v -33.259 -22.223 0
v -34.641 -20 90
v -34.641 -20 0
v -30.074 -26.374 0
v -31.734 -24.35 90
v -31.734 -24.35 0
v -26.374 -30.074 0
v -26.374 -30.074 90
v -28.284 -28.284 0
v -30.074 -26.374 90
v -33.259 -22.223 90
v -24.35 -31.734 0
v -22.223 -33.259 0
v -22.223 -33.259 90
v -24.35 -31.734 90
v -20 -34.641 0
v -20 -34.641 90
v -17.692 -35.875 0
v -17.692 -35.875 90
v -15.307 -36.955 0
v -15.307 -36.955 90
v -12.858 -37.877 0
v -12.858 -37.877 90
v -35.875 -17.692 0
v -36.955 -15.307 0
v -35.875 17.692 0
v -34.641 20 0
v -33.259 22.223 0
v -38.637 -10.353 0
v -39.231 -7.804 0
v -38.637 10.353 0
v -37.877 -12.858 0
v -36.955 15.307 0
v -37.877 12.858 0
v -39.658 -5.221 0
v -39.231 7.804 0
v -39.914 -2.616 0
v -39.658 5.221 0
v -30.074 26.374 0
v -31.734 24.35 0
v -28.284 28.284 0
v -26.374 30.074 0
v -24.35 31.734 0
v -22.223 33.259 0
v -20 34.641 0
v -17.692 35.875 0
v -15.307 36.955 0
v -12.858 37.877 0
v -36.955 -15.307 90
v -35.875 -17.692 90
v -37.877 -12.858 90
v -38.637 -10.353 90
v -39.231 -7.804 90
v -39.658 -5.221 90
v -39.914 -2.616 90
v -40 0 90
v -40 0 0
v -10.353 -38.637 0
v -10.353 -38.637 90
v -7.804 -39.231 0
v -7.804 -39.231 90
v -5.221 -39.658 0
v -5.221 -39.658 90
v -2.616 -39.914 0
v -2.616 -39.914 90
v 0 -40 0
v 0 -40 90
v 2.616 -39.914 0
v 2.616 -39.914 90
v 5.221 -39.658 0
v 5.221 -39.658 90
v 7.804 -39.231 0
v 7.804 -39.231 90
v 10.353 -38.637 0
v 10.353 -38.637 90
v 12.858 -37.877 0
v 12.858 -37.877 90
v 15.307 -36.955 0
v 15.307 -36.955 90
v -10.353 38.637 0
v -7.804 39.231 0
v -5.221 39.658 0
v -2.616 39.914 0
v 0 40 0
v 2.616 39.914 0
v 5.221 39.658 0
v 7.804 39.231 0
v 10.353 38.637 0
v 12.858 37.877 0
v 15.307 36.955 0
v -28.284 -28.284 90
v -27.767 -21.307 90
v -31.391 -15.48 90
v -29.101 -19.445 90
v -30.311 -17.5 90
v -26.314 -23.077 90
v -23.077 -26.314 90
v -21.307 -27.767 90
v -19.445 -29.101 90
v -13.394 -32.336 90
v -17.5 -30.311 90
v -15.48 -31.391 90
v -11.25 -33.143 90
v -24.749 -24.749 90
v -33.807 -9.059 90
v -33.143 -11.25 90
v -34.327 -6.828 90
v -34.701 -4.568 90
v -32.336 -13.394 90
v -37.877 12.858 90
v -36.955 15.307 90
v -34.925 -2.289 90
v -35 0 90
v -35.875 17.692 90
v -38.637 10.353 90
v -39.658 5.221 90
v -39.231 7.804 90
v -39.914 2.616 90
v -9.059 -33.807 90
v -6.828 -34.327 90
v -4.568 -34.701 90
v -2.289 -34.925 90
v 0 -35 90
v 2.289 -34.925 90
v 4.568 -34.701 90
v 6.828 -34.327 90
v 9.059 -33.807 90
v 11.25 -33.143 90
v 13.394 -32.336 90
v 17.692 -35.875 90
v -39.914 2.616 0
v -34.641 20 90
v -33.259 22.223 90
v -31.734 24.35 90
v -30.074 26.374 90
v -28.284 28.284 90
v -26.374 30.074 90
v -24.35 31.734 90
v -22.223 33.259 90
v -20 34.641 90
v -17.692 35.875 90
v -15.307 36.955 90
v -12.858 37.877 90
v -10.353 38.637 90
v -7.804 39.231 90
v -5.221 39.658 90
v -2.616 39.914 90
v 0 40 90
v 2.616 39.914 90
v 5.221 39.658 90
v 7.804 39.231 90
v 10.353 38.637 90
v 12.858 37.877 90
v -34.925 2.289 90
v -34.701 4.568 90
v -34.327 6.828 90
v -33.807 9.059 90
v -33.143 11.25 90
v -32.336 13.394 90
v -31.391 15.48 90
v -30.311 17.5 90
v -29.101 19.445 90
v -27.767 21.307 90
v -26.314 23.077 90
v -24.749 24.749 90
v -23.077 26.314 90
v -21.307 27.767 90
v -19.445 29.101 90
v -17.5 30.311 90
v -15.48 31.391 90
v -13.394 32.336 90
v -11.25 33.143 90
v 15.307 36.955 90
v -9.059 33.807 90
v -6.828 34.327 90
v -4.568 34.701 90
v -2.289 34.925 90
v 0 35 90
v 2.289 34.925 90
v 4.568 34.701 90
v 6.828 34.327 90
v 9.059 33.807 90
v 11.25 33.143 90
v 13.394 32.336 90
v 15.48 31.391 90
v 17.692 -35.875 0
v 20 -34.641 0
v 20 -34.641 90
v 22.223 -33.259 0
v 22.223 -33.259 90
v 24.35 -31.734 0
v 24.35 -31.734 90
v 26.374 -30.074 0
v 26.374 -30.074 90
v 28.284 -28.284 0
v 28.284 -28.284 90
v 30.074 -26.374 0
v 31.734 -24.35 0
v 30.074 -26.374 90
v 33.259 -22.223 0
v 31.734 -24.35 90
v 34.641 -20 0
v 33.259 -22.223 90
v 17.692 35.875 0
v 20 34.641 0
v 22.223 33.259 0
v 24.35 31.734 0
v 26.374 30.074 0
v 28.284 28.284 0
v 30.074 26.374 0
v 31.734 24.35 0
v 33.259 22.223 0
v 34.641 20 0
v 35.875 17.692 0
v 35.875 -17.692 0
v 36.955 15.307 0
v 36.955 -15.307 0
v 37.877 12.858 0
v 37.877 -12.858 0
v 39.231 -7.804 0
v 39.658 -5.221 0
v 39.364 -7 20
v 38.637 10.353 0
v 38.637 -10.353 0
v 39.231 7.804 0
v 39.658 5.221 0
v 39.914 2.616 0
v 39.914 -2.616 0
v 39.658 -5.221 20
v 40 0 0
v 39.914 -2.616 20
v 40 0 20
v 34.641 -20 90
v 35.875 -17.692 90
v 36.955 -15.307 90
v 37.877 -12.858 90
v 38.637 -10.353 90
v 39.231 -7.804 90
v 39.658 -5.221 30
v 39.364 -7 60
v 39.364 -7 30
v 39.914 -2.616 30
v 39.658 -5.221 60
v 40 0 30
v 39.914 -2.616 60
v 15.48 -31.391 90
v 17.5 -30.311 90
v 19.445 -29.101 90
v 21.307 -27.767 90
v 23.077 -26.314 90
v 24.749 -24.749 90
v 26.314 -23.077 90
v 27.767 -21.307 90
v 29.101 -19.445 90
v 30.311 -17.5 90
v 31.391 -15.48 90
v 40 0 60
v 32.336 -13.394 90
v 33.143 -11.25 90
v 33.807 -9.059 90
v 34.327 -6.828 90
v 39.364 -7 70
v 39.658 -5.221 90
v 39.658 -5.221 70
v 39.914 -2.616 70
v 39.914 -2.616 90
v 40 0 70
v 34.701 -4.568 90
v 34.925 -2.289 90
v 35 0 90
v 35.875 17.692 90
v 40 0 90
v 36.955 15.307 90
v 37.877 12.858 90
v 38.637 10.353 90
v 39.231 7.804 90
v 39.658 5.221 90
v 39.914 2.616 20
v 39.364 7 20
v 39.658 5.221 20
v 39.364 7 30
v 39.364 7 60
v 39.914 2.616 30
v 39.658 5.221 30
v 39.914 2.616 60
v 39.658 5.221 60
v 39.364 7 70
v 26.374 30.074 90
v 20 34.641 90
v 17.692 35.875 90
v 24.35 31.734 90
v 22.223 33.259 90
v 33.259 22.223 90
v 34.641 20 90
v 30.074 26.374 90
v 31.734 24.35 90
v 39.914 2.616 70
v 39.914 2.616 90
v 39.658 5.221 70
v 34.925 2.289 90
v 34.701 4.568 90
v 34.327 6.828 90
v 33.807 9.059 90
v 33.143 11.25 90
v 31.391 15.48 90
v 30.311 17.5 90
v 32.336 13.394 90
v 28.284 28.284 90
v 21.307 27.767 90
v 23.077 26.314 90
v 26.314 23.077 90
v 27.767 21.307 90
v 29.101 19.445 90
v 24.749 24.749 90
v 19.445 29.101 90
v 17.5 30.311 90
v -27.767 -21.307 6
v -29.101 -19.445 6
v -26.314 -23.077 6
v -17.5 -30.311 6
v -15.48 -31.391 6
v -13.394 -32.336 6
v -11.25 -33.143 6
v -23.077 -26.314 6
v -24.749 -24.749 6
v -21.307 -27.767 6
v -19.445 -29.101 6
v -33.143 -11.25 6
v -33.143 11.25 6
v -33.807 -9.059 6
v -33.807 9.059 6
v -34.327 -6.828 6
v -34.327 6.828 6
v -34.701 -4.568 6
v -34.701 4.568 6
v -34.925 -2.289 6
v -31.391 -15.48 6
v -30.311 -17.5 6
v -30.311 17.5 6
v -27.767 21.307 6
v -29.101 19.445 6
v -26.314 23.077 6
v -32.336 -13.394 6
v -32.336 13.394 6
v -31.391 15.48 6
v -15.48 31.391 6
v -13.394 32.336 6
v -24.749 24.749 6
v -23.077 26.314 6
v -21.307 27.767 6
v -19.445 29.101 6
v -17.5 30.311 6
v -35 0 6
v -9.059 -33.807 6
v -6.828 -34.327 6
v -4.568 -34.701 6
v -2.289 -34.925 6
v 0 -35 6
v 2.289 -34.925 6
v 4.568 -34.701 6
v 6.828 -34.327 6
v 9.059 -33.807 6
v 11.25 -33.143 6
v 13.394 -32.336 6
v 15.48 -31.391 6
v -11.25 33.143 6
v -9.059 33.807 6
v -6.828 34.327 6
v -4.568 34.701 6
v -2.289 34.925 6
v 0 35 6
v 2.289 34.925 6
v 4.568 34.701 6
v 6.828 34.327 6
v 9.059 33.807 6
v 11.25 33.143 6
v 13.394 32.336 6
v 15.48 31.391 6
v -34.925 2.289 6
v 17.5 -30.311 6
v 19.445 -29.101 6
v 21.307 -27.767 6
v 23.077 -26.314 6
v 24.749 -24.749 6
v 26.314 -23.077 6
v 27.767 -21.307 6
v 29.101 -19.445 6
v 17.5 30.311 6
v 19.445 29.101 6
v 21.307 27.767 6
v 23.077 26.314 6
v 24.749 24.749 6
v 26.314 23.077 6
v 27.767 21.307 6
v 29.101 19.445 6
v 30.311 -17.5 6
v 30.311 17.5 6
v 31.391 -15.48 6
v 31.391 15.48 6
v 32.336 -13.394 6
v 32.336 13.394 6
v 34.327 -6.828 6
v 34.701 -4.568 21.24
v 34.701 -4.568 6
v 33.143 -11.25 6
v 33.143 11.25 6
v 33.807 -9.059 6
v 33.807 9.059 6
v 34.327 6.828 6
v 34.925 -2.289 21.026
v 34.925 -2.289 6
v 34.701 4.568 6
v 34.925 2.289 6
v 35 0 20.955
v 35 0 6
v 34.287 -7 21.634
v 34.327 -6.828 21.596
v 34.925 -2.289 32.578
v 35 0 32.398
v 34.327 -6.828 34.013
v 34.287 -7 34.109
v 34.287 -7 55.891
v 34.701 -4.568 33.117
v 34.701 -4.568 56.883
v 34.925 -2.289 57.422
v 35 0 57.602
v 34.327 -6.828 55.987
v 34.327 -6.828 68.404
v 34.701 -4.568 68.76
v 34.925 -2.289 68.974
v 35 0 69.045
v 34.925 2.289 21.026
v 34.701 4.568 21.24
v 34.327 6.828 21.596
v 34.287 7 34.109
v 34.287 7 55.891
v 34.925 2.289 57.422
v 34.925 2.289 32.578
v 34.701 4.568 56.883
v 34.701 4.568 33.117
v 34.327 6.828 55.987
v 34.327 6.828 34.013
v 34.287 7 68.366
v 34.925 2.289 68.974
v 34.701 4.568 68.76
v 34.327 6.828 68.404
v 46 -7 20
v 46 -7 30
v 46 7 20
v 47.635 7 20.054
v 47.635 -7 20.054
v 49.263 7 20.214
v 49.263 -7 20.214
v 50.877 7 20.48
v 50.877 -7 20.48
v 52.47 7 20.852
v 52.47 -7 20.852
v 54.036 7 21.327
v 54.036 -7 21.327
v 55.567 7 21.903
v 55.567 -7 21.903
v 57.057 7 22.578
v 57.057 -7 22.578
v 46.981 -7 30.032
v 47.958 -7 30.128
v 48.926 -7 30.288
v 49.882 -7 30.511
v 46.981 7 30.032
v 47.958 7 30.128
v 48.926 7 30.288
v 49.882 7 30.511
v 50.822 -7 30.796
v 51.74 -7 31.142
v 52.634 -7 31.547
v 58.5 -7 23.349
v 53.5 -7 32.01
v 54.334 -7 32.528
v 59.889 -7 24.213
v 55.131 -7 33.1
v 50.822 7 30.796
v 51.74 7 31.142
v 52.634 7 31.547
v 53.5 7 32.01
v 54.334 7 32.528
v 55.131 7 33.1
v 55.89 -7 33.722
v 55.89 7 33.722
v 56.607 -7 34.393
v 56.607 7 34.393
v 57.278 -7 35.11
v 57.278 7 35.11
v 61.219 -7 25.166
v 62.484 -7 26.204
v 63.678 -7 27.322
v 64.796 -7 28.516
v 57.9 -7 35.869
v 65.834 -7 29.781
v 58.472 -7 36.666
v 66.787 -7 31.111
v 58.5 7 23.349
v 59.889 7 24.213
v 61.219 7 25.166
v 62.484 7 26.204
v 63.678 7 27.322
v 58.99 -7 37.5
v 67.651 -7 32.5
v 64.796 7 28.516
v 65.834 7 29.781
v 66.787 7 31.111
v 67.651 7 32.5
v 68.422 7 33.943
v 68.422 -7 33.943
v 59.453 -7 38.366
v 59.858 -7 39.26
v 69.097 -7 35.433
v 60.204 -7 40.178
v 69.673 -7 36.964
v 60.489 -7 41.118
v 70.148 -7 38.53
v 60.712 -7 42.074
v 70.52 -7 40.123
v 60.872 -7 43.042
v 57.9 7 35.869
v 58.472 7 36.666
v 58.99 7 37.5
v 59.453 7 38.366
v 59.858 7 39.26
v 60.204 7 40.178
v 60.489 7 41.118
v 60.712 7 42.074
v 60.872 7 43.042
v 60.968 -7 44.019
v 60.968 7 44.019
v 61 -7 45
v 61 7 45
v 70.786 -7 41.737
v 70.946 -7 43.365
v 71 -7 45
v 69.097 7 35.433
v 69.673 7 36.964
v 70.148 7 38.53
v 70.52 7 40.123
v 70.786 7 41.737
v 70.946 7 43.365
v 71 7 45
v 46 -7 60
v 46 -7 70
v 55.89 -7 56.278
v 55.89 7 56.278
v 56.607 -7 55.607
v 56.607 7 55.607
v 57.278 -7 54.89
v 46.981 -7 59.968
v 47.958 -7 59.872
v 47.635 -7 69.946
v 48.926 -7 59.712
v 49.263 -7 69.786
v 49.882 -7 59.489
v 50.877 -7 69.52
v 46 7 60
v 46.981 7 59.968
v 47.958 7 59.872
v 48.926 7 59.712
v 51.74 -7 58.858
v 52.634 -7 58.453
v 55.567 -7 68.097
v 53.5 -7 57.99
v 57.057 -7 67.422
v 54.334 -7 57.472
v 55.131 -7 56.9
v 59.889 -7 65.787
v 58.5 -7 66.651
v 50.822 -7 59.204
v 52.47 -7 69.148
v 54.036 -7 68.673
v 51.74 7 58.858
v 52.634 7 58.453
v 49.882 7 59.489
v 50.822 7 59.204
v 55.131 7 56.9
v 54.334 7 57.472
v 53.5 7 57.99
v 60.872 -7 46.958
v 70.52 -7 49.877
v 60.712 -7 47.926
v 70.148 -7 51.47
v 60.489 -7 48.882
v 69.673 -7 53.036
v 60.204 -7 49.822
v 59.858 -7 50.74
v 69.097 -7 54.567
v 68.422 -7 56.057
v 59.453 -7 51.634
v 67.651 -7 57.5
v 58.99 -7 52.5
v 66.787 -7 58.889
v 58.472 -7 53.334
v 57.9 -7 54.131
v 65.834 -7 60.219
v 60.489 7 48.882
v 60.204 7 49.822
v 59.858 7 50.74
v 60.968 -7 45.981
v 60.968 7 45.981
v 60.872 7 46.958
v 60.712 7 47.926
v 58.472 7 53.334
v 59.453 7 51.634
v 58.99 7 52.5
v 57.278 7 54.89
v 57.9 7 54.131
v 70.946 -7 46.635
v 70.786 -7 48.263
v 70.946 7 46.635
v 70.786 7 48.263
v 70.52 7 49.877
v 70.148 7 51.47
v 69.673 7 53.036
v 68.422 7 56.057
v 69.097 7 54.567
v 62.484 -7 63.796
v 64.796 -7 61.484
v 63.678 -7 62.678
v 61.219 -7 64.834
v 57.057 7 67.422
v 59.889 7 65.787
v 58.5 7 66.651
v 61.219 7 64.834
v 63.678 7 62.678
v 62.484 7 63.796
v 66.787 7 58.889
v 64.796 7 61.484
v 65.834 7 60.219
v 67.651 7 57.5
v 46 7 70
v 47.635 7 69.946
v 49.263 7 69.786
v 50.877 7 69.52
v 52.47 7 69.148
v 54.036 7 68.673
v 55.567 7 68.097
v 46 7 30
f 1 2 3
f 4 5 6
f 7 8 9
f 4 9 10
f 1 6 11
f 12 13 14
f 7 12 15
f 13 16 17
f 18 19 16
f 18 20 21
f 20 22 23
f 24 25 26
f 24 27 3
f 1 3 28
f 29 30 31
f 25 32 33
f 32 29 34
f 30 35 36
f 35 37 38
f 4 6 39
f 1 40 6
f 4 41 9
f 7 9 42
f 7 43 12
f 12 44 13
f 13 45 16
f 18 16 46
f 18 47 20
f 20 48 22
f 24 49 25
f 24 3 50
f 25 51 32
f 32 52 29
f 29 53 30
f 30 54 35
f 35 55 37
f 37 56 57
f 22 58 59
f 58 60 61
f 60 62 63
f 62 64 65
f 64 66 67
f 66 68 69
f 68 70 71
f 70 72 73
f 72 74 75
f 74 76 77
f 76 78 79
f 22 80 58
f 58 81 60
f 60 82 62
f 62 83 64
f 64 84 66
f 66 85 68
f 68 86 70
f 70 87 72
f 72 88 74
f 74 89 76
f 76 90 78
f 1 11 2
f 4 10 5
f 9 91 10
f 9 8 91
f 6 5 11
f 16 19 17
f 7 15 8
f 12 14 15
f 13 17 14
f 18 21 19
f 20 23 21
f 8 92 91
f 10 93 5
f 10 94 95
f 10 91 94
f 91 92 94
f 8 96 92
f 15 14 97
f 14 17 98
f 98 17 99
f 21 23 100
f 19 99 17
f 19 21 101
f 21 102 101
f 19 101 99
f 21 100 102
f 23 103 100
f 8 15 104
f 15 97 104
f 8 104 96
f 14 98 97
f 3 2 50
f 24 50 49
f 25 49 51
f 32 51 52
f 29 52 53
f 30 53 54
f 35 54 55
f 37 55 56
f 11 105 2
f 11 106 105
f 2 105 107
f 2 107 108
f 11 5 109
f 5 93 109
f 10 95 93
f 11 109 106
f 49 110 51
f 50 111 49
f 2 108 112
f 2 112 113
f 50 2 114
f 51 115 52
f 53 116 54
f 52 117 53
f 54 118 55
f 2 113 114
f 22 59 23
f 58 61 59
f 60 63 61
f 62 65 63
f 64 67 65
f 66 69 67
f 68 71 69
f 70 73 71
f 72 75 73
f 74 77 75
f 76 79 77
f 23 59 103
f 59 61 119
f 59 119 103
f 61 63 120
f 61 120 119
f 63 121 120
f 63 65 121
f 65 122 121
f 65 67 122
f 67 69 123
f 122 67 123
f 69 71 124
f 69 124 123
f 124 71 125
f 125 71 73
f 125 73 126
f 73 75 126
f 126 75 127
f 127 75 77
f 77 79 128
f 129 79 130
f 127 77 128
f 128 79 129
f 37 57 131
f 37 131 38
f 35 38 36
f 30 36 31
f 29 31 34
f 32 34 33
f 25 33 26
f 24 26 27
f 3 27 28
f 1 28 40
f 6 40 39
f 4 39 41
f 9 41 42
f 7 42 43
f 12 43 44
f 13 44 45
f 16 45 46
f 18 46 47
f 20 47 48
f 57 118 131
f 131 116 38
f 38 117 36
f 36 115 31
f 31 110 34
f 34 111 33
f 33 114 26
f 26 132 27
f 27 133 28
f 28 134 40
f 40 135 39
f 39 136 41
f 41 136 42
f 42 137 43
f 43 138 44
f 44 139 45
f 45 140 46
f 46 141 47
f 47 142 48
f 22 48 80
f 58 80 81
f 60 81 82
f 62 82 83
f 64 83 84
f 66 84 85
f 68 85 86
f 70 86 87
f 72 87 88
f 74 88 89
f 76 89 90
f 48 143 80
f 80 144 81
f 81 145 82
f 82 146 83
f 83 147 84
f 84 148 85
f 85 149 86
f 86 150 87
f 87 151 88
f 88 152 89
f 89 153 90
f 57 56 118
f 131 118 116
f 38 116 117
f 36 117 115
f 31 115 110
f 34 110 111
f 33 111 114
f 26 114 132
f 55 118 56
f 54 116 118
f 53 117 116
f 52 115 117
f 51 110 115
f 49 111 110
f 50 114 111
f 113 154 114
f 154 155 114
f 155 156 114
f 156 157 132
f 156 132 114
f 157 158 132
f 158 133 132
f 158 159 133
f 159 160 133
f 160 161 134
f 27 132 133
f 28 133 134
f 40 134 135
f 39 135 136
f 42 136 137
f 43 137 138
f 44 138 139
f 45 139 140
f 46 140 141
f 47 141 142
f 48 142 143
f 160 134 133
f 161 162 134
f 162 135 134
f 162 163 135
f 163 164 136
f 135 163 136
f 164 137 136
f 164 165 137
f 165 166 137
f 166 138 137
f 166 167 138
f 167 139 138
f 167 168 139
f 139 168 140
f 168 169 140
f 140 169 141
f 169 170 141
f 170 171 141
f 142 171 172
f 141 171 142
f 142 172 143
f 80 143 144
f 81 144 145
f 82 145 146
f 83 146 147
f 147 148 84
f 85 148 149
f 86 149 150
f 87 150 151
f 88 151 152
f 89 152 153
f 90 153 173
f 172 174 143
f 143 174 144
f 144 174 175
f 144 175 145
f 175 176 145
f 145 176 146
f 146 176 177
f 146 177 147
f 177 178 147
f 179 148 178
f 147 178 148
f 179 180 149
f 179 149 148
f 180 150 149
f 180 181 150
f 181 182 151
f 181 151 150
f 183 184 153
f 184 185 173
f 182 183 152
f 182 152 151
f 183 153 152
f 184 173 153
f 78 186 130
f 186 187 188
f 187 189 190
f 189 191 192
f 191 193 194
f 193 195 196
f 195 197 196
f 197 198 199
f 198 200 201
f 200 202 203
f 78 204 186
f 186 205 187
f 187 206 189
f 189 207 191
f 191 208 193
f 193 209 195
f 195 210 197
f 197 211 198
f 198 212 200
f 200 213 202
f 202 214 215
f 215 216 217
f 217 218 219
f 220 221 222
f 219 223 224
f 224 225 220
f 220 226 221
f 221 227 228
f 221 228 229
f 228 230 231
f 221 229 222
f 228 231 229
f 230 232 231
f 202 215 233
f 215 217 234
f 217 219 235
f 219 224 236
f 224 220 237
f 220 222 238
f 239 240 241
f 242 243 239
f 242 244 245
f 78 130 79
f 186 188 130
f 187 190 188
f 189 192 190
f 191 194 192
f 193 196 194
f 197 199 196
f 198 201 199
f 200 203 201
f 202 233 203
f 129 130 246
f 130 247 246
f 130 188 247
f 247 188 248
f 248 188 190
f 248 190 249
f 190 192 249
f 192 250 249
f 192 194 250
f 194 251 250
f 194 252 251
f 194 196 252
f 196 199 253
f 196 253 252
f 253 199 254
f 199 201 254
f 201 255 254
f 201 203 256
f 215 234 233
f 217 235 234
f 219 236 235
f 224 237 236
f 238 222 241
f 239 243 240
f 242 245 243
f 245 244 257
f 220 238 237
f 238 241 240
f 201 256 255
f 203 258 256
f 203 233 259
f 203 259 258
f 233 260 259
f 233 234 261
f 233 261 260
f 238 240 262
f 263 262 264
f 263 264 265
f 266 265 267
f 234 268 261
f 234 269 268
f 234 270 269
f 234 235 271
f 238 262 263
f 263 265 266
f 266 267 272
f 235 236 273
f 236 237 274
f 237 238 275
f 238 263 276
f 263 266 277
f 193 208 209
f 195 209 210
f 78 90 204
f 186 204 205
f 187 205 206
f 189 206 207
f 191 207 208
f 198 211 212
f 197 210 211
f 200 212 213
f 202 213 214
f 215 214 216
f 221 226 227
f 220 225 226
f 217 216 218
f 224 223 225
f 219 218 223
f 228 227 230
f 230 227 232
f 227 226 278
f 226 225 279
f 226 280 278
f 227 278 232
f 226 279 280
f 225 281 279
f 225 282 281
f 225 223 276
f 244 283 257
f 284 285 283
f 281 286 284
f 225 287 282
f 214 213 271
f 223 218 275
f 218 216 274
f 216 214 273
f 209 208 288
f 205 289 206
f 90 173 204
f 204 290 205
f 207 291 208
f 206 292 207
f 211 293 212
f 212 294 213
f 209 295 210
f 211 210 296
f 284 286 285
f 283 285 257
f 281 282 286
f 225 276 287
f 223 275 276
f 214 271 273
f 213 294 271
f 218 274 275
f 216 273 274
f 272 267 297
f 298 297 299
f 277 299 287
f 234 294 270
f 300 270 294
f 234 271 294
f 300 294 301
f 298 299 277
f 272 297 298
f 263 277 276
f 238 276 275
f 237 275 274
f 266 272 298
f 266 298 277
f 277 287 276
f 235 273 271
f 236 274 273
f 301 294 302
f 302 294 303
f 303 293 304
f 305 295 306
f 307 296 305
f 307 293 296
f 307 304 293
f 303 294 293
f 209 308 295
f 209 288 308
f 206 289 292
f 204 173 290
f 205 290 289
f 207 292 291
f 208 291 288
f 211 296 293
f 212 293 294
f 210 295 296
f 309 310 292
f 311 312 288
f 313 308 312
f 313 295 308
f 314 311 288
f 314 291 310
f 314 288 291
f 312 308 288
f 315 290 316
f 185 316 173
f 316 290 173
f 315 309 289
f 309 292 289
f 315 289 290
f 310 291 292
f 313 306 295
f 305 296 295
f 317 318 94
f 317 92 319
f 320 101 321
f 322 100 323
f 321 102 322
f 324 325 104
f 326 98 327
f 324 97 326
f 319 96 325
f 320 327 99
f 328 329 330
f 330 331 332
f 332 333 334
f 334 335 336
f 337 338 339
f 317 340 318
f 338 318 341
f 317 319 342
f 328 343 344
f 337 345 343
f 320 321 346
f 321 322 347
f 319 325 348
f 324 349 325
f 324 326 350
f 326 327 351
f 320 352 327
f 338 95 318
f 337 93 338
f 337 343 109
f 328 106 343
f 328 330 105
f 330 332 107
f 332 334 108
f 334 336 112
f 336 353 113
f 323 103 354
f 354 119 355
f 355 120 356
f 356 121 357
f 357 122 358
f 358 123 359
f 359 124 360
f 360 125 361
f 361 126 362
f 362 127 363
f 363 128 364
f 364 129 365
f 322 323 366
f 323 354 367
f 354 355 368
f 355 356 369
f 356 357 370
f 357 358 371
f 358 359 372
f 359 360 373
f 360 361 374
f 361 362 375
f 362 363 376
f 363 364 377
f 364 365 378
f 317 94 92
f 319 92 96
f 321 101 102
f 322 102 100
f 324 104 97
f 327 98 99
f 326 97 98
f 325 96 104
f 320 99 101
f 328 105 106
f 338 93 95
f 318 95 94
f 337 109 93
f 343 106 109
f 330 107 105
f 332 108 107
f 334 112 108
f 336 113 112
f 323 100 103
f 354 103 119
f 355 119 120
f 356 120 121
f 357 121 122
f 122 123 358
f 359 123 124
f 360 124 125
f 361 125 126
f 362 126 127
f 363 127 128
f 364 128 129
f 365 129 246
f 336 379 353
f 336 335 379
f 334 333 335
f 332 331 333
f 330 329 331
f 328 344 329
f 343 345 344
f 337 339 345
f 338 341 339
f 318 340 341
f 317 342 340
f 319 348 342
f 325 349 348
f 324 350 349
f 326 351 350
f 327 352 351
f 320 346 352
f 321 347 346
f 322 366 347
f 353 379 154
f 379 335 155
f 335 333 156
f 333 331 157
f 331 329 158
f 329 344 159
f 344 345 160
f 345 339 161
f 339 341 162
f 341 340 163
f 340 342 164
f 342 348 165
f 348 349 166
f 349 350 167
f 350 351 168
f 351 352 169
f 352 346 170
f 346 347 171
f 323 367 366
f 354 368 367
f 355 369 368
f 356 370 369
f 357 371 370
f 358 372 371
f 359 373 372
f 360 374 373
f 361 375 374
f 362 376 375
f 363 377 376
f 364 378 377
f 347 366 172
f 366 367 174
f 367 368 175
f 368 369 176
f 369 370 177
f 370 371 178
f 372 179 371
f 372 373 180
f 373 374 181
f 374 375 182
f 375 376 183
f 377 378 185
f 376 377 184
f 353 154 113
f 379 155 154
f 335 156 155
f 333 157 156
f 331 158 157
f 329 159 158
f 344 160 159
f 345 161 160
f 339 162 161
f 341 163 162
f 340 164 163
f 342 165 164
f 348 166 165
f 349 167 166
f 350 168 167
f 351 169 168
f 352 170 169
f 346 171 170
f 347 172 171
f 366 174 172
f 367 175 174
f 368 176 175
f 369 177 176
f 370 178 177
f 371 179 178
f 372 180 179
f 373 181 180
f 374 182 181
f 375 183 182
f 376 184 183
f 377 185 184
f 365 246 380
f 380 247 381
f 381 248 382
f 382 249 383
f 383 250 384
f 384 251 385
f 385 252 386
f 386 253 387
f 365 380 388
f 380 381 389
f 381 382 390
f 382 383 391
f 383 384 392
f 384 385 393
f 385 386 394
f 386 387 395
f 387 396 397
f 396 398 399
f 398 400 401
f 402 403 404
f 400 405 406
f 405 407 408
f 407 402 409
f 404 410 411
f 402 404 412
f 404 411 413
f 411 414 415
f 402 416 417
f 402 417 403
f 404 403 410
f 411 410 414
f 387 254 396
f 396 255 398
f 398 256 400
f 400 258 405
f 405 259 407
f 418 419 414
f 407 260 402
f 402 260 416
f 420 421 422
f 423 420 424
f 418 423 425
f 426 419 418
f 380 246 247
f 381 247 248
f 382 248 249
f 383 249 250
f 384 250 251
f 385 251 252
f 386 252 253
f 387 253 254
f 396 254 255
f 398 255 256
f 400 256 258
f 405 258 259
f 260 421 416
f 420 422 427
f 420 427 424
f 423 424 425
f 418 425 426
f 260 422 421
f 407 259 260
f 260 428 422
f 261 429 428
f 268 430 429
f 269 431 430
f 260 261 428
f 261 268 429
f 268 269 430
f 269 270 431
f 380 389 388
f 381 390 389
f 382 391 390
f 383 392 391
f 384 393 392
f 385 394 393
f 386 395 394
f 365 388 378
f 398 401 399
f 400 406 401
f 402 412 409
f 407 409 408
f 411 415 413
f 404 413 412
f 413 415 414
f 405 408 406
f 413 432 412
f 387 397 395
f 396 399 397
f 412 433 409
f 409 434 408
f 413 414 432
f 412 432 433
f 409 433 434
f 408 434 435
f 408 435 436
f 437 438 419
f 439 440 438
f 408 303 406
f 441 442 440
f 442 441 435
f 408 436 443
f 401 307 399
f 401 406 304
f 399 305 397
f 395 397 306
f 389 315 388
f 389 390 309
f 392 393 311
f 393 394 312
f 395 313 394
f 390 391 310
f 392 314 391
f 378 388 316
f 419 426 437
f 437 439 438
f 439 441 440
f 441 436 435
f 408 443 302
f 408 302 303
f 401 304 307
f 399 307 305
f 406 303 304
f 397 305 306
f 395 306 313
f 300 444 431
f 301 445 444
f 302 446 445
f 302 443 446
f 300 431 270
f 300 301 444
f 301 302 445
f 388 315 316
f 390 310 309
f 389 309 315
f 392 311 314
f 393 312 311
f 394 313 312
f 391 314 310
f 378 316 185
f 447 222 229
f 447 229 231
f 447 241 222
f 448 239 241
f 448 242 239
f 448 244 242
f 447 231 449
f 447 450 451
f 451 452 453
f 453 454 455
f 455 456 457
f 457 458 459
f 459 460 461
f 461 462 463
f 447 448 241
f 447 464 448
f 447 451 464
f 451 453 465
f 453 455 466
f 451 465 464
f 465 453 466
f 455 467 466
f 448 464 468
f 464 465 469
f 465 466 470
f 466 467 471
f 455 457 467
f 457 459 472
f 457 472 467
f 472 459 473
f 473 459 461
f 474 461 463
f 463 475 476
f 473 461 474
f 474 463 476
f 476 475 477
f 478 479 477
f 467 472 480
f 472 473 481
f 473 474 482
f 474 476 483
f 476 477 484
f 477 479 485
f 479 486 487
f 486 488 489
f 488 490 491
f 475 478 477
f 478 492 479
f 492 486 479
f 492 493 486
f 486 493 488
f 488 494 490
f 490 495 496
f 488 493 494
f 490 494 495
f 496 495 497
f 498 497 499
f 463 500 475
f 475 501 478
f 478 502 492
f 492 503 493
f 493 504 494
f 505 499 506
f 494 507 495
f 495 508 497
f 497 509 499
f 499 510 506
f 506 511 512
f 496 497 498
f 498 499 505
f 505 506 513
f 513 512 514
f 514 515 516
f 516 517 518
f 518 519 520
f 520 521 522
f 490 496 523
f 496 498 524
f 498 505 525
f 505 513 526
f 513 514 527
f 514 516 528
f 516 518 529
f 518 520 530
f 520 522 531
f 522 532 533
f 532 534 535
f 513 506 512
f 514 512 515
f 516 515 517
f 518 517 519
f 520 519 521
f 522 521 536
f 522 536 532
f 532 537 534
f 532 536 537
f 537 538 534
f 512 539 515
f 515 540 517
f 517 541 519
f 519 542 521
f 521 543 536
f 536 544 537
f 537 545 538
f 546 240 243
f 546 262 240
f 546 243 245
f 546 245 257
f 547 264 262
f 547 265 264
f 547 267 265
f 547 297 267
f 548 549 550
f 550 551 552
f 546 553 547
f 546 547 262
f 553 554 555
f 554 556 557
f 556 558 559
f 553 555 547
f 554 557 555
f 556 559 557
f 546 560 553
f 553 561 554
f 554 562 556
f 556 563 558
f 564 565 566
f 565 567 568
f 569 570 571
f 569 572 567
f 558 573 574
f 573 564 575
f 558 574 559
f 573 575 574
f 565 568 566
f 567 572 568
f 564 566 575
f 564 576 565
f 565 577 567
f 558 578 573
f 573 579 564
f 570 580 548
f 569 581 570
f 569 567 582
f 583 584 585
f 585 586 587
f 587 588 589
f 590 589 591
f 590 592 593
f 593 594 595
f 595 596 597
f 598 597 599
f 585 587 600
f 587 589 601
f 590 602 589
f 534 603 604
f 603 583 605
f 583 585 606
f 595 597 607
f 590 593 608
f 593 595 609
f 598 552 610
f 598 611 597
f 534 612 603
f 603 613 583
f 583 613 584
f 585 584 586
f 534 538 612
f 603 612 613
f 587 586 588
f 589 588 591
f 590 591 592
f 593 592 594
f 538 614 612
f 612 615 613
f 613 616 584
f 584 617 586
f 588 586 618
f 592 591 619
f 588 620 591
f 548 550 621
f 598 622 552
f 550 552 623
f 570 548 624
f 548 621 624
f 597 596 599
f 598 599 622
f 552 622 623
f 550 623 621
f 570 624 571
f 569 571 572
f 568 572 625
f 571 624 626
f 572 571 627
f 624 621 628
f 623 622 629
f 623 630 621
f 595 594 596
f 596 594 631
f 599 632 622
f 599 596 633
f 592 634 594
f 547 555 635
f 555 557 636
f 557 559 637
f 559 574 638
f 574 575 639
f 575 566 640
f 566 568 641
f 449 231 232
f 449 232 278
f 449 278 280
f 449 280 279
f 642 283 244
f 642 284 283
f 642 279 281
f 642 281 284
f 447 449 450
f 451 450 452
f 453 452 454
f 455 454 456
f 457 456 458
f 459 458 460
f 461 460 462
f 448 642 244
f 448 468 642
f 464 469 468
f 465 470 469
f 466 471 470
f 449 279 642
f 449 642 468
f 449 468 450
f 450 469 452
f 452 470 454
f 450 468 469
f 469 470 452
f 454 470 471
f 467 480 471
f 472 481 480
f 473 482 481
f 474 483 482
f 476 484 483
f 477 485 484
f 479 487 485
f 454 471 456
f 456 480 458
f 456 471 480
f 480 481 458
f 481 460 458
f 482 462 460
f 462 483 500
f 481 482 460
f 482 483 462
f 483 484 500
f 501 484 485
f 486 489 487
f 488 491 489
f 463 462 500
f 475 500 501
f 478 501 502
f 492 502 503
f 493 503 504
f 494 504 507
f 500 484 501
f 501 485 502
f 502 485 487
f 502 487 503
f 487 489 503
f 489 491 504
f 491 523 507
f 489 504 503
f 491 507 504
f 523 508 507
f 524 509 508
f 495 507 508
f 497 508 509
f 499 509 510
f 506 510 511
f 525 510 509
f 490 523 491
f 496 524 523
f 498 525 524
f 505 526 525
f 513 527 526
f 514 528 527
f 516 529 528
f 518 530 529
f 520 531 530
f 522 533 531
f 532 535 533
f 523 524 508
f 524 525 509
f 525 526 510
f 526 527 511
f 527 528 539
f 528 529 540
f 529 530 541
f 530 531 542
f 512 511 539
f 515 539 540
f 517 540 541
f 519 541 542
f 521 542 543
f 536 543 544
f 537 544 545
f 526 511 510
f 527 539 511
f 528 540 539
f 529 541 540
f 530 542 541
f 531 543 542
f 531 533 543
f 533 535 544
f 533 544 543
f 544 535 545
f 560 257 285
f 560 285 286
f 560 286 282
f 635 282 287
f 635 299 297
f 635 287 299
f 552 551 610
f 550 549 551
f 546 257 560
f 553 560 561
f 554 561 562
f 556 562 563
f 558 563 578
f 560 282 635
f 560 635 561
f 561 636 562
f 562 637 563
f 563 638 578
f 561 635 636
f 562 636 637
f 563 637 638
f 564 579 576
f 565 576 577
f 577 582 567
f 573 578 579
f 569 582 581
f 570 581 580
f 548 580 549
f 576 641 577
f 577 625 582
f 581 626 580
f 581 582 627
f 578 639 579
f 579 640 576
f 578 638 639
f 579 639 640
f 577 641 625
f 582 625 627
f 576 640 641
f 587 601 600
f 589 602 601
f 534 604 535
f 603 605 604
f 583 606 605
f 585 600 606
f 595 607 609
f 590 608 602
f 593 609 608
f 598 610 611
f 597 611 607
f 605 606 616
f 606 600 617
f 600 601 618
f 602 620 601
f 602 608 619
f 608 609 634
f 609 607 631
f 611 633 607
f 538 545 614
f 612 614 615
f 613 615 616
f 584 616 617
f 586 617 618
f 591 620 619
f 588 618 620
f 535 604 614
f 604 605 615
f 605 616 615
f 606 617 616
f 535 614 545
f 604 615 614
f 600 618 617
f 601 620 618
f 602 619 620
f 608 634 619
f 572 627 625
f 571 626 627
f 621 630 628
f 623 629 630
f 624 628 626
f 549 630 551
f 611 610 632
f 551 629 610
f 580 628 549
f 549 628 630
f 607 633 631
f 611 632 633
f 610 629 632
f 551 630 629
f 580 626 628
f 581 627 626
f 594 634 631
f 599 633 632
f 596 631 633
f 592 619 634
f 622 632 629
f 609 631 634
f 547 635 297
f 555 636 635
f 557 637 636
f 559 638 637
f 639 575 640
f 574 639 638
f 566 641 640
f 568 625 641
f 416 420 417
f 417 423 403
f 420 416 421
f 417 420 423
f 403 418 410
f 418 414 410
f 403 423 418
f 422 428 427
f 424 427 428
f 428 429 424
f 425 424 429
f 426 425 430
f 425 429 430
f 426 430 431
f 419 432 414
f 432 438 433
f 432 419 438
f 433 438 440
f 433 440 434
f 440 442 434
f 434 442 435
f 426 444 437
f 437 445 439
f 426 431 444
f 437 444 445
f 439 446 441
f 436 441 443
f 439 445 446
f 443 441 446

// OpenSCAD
// ============================================
//  Mug with a D-shaped handle on the +X side
// ============================================

$fn = 96;

// ---- Body parameters ----
mug_outer_d   = 80;                  // 外径
mug_inner_d   = 70;                  // 内径 (肉厚 5mm)
mug_h         = 90;                  // 全体高さ
bottom_t      = 6;                   // 底の厚み

mug_outer_r   = mug_outer_d / 2;     // 40
mug_inner_r   = mug_inner_d / 2;     // 35

// ---- Handle parameters ----
hole_h        = 30;                  // 取手内側の空間 高さ
hole_w        = 25;                  // 取手内側の空間 幅 (X方向)
handle_t      = 10;                  // 取手の太さ (径方向/上下方向の枠幅)
handle_depth  = 14;                  // 取手の厚み (Y方向)
handle_zc     = mug_h / 2;           // 高さ方向中央
embed         = 4;                   // 本体へのめり込み量 (確実な union 用)

// 取手外形の全体サイズ
outer_h       = hole_h + 2 * handle_t;   // 50
outer_w       = hole_w + handle_t;       // 35 (本体側は本体に接続)

// ---- D shape (2D): 本体側が直線、外側が半円 ----
// x = 0 が直線側、+x 方向に膨らむ D 字
module d_profile(w, h) {
    r = h / 2;
    hull() {
        translate([0.001, -h/2]) square([0.001, h]);   // 直線側
        translate([w - r, 0]) circle(r = r);           // 外側の半円
    }
}

module handle() {
    // Y-Z 平面上に D 字を描き、Y 方向に押し出す
    translate([0, handle_depth/2, 0])
    rotate([90, 0, 0])
    linear_extrude(height = handle_depth, center = false)
    difference() {
        // 外形 D
        d_profile(outer_w, outer_h);
        // 内側の穴 D (高さ30 x 幅25)
        translate([0, 0])
        offset(r = 0)
        d_profile_hole();
    }
}

module d_profile_hole() {
    r = hole_h / 2;
    hull() {
        translate([-0.001, -hole_h/2]) square([0.001, hole_h]);
        translate([hole_w - r, 0]) circle(r = r);
    }
}

// ---- Assembly ----
module mug() {
    union() {
        // 本体
        difference() {
            cylinder(h = mug_h, r = mug_outer_r);
            translate([0, 0, bottom_t])
                cylinder(h = mug_h - bottom_t + 1, r = mug_inner_r);
        }

        // 取手 (+X 側のみ)。本体外周に embed 分めり込ませて確実に接続
        difference() {
            translate([mug_outer_r - embed, 0, handle_zc])
                handle();
            // 内壁側へはみ出さないよう、内側の空洞領域を削る
            translate([0, 0, bottom_t])
                cylinder(h = mug_h - bottom_t + 1, r = mug_inner_r);
        }
    }
}

mug();
